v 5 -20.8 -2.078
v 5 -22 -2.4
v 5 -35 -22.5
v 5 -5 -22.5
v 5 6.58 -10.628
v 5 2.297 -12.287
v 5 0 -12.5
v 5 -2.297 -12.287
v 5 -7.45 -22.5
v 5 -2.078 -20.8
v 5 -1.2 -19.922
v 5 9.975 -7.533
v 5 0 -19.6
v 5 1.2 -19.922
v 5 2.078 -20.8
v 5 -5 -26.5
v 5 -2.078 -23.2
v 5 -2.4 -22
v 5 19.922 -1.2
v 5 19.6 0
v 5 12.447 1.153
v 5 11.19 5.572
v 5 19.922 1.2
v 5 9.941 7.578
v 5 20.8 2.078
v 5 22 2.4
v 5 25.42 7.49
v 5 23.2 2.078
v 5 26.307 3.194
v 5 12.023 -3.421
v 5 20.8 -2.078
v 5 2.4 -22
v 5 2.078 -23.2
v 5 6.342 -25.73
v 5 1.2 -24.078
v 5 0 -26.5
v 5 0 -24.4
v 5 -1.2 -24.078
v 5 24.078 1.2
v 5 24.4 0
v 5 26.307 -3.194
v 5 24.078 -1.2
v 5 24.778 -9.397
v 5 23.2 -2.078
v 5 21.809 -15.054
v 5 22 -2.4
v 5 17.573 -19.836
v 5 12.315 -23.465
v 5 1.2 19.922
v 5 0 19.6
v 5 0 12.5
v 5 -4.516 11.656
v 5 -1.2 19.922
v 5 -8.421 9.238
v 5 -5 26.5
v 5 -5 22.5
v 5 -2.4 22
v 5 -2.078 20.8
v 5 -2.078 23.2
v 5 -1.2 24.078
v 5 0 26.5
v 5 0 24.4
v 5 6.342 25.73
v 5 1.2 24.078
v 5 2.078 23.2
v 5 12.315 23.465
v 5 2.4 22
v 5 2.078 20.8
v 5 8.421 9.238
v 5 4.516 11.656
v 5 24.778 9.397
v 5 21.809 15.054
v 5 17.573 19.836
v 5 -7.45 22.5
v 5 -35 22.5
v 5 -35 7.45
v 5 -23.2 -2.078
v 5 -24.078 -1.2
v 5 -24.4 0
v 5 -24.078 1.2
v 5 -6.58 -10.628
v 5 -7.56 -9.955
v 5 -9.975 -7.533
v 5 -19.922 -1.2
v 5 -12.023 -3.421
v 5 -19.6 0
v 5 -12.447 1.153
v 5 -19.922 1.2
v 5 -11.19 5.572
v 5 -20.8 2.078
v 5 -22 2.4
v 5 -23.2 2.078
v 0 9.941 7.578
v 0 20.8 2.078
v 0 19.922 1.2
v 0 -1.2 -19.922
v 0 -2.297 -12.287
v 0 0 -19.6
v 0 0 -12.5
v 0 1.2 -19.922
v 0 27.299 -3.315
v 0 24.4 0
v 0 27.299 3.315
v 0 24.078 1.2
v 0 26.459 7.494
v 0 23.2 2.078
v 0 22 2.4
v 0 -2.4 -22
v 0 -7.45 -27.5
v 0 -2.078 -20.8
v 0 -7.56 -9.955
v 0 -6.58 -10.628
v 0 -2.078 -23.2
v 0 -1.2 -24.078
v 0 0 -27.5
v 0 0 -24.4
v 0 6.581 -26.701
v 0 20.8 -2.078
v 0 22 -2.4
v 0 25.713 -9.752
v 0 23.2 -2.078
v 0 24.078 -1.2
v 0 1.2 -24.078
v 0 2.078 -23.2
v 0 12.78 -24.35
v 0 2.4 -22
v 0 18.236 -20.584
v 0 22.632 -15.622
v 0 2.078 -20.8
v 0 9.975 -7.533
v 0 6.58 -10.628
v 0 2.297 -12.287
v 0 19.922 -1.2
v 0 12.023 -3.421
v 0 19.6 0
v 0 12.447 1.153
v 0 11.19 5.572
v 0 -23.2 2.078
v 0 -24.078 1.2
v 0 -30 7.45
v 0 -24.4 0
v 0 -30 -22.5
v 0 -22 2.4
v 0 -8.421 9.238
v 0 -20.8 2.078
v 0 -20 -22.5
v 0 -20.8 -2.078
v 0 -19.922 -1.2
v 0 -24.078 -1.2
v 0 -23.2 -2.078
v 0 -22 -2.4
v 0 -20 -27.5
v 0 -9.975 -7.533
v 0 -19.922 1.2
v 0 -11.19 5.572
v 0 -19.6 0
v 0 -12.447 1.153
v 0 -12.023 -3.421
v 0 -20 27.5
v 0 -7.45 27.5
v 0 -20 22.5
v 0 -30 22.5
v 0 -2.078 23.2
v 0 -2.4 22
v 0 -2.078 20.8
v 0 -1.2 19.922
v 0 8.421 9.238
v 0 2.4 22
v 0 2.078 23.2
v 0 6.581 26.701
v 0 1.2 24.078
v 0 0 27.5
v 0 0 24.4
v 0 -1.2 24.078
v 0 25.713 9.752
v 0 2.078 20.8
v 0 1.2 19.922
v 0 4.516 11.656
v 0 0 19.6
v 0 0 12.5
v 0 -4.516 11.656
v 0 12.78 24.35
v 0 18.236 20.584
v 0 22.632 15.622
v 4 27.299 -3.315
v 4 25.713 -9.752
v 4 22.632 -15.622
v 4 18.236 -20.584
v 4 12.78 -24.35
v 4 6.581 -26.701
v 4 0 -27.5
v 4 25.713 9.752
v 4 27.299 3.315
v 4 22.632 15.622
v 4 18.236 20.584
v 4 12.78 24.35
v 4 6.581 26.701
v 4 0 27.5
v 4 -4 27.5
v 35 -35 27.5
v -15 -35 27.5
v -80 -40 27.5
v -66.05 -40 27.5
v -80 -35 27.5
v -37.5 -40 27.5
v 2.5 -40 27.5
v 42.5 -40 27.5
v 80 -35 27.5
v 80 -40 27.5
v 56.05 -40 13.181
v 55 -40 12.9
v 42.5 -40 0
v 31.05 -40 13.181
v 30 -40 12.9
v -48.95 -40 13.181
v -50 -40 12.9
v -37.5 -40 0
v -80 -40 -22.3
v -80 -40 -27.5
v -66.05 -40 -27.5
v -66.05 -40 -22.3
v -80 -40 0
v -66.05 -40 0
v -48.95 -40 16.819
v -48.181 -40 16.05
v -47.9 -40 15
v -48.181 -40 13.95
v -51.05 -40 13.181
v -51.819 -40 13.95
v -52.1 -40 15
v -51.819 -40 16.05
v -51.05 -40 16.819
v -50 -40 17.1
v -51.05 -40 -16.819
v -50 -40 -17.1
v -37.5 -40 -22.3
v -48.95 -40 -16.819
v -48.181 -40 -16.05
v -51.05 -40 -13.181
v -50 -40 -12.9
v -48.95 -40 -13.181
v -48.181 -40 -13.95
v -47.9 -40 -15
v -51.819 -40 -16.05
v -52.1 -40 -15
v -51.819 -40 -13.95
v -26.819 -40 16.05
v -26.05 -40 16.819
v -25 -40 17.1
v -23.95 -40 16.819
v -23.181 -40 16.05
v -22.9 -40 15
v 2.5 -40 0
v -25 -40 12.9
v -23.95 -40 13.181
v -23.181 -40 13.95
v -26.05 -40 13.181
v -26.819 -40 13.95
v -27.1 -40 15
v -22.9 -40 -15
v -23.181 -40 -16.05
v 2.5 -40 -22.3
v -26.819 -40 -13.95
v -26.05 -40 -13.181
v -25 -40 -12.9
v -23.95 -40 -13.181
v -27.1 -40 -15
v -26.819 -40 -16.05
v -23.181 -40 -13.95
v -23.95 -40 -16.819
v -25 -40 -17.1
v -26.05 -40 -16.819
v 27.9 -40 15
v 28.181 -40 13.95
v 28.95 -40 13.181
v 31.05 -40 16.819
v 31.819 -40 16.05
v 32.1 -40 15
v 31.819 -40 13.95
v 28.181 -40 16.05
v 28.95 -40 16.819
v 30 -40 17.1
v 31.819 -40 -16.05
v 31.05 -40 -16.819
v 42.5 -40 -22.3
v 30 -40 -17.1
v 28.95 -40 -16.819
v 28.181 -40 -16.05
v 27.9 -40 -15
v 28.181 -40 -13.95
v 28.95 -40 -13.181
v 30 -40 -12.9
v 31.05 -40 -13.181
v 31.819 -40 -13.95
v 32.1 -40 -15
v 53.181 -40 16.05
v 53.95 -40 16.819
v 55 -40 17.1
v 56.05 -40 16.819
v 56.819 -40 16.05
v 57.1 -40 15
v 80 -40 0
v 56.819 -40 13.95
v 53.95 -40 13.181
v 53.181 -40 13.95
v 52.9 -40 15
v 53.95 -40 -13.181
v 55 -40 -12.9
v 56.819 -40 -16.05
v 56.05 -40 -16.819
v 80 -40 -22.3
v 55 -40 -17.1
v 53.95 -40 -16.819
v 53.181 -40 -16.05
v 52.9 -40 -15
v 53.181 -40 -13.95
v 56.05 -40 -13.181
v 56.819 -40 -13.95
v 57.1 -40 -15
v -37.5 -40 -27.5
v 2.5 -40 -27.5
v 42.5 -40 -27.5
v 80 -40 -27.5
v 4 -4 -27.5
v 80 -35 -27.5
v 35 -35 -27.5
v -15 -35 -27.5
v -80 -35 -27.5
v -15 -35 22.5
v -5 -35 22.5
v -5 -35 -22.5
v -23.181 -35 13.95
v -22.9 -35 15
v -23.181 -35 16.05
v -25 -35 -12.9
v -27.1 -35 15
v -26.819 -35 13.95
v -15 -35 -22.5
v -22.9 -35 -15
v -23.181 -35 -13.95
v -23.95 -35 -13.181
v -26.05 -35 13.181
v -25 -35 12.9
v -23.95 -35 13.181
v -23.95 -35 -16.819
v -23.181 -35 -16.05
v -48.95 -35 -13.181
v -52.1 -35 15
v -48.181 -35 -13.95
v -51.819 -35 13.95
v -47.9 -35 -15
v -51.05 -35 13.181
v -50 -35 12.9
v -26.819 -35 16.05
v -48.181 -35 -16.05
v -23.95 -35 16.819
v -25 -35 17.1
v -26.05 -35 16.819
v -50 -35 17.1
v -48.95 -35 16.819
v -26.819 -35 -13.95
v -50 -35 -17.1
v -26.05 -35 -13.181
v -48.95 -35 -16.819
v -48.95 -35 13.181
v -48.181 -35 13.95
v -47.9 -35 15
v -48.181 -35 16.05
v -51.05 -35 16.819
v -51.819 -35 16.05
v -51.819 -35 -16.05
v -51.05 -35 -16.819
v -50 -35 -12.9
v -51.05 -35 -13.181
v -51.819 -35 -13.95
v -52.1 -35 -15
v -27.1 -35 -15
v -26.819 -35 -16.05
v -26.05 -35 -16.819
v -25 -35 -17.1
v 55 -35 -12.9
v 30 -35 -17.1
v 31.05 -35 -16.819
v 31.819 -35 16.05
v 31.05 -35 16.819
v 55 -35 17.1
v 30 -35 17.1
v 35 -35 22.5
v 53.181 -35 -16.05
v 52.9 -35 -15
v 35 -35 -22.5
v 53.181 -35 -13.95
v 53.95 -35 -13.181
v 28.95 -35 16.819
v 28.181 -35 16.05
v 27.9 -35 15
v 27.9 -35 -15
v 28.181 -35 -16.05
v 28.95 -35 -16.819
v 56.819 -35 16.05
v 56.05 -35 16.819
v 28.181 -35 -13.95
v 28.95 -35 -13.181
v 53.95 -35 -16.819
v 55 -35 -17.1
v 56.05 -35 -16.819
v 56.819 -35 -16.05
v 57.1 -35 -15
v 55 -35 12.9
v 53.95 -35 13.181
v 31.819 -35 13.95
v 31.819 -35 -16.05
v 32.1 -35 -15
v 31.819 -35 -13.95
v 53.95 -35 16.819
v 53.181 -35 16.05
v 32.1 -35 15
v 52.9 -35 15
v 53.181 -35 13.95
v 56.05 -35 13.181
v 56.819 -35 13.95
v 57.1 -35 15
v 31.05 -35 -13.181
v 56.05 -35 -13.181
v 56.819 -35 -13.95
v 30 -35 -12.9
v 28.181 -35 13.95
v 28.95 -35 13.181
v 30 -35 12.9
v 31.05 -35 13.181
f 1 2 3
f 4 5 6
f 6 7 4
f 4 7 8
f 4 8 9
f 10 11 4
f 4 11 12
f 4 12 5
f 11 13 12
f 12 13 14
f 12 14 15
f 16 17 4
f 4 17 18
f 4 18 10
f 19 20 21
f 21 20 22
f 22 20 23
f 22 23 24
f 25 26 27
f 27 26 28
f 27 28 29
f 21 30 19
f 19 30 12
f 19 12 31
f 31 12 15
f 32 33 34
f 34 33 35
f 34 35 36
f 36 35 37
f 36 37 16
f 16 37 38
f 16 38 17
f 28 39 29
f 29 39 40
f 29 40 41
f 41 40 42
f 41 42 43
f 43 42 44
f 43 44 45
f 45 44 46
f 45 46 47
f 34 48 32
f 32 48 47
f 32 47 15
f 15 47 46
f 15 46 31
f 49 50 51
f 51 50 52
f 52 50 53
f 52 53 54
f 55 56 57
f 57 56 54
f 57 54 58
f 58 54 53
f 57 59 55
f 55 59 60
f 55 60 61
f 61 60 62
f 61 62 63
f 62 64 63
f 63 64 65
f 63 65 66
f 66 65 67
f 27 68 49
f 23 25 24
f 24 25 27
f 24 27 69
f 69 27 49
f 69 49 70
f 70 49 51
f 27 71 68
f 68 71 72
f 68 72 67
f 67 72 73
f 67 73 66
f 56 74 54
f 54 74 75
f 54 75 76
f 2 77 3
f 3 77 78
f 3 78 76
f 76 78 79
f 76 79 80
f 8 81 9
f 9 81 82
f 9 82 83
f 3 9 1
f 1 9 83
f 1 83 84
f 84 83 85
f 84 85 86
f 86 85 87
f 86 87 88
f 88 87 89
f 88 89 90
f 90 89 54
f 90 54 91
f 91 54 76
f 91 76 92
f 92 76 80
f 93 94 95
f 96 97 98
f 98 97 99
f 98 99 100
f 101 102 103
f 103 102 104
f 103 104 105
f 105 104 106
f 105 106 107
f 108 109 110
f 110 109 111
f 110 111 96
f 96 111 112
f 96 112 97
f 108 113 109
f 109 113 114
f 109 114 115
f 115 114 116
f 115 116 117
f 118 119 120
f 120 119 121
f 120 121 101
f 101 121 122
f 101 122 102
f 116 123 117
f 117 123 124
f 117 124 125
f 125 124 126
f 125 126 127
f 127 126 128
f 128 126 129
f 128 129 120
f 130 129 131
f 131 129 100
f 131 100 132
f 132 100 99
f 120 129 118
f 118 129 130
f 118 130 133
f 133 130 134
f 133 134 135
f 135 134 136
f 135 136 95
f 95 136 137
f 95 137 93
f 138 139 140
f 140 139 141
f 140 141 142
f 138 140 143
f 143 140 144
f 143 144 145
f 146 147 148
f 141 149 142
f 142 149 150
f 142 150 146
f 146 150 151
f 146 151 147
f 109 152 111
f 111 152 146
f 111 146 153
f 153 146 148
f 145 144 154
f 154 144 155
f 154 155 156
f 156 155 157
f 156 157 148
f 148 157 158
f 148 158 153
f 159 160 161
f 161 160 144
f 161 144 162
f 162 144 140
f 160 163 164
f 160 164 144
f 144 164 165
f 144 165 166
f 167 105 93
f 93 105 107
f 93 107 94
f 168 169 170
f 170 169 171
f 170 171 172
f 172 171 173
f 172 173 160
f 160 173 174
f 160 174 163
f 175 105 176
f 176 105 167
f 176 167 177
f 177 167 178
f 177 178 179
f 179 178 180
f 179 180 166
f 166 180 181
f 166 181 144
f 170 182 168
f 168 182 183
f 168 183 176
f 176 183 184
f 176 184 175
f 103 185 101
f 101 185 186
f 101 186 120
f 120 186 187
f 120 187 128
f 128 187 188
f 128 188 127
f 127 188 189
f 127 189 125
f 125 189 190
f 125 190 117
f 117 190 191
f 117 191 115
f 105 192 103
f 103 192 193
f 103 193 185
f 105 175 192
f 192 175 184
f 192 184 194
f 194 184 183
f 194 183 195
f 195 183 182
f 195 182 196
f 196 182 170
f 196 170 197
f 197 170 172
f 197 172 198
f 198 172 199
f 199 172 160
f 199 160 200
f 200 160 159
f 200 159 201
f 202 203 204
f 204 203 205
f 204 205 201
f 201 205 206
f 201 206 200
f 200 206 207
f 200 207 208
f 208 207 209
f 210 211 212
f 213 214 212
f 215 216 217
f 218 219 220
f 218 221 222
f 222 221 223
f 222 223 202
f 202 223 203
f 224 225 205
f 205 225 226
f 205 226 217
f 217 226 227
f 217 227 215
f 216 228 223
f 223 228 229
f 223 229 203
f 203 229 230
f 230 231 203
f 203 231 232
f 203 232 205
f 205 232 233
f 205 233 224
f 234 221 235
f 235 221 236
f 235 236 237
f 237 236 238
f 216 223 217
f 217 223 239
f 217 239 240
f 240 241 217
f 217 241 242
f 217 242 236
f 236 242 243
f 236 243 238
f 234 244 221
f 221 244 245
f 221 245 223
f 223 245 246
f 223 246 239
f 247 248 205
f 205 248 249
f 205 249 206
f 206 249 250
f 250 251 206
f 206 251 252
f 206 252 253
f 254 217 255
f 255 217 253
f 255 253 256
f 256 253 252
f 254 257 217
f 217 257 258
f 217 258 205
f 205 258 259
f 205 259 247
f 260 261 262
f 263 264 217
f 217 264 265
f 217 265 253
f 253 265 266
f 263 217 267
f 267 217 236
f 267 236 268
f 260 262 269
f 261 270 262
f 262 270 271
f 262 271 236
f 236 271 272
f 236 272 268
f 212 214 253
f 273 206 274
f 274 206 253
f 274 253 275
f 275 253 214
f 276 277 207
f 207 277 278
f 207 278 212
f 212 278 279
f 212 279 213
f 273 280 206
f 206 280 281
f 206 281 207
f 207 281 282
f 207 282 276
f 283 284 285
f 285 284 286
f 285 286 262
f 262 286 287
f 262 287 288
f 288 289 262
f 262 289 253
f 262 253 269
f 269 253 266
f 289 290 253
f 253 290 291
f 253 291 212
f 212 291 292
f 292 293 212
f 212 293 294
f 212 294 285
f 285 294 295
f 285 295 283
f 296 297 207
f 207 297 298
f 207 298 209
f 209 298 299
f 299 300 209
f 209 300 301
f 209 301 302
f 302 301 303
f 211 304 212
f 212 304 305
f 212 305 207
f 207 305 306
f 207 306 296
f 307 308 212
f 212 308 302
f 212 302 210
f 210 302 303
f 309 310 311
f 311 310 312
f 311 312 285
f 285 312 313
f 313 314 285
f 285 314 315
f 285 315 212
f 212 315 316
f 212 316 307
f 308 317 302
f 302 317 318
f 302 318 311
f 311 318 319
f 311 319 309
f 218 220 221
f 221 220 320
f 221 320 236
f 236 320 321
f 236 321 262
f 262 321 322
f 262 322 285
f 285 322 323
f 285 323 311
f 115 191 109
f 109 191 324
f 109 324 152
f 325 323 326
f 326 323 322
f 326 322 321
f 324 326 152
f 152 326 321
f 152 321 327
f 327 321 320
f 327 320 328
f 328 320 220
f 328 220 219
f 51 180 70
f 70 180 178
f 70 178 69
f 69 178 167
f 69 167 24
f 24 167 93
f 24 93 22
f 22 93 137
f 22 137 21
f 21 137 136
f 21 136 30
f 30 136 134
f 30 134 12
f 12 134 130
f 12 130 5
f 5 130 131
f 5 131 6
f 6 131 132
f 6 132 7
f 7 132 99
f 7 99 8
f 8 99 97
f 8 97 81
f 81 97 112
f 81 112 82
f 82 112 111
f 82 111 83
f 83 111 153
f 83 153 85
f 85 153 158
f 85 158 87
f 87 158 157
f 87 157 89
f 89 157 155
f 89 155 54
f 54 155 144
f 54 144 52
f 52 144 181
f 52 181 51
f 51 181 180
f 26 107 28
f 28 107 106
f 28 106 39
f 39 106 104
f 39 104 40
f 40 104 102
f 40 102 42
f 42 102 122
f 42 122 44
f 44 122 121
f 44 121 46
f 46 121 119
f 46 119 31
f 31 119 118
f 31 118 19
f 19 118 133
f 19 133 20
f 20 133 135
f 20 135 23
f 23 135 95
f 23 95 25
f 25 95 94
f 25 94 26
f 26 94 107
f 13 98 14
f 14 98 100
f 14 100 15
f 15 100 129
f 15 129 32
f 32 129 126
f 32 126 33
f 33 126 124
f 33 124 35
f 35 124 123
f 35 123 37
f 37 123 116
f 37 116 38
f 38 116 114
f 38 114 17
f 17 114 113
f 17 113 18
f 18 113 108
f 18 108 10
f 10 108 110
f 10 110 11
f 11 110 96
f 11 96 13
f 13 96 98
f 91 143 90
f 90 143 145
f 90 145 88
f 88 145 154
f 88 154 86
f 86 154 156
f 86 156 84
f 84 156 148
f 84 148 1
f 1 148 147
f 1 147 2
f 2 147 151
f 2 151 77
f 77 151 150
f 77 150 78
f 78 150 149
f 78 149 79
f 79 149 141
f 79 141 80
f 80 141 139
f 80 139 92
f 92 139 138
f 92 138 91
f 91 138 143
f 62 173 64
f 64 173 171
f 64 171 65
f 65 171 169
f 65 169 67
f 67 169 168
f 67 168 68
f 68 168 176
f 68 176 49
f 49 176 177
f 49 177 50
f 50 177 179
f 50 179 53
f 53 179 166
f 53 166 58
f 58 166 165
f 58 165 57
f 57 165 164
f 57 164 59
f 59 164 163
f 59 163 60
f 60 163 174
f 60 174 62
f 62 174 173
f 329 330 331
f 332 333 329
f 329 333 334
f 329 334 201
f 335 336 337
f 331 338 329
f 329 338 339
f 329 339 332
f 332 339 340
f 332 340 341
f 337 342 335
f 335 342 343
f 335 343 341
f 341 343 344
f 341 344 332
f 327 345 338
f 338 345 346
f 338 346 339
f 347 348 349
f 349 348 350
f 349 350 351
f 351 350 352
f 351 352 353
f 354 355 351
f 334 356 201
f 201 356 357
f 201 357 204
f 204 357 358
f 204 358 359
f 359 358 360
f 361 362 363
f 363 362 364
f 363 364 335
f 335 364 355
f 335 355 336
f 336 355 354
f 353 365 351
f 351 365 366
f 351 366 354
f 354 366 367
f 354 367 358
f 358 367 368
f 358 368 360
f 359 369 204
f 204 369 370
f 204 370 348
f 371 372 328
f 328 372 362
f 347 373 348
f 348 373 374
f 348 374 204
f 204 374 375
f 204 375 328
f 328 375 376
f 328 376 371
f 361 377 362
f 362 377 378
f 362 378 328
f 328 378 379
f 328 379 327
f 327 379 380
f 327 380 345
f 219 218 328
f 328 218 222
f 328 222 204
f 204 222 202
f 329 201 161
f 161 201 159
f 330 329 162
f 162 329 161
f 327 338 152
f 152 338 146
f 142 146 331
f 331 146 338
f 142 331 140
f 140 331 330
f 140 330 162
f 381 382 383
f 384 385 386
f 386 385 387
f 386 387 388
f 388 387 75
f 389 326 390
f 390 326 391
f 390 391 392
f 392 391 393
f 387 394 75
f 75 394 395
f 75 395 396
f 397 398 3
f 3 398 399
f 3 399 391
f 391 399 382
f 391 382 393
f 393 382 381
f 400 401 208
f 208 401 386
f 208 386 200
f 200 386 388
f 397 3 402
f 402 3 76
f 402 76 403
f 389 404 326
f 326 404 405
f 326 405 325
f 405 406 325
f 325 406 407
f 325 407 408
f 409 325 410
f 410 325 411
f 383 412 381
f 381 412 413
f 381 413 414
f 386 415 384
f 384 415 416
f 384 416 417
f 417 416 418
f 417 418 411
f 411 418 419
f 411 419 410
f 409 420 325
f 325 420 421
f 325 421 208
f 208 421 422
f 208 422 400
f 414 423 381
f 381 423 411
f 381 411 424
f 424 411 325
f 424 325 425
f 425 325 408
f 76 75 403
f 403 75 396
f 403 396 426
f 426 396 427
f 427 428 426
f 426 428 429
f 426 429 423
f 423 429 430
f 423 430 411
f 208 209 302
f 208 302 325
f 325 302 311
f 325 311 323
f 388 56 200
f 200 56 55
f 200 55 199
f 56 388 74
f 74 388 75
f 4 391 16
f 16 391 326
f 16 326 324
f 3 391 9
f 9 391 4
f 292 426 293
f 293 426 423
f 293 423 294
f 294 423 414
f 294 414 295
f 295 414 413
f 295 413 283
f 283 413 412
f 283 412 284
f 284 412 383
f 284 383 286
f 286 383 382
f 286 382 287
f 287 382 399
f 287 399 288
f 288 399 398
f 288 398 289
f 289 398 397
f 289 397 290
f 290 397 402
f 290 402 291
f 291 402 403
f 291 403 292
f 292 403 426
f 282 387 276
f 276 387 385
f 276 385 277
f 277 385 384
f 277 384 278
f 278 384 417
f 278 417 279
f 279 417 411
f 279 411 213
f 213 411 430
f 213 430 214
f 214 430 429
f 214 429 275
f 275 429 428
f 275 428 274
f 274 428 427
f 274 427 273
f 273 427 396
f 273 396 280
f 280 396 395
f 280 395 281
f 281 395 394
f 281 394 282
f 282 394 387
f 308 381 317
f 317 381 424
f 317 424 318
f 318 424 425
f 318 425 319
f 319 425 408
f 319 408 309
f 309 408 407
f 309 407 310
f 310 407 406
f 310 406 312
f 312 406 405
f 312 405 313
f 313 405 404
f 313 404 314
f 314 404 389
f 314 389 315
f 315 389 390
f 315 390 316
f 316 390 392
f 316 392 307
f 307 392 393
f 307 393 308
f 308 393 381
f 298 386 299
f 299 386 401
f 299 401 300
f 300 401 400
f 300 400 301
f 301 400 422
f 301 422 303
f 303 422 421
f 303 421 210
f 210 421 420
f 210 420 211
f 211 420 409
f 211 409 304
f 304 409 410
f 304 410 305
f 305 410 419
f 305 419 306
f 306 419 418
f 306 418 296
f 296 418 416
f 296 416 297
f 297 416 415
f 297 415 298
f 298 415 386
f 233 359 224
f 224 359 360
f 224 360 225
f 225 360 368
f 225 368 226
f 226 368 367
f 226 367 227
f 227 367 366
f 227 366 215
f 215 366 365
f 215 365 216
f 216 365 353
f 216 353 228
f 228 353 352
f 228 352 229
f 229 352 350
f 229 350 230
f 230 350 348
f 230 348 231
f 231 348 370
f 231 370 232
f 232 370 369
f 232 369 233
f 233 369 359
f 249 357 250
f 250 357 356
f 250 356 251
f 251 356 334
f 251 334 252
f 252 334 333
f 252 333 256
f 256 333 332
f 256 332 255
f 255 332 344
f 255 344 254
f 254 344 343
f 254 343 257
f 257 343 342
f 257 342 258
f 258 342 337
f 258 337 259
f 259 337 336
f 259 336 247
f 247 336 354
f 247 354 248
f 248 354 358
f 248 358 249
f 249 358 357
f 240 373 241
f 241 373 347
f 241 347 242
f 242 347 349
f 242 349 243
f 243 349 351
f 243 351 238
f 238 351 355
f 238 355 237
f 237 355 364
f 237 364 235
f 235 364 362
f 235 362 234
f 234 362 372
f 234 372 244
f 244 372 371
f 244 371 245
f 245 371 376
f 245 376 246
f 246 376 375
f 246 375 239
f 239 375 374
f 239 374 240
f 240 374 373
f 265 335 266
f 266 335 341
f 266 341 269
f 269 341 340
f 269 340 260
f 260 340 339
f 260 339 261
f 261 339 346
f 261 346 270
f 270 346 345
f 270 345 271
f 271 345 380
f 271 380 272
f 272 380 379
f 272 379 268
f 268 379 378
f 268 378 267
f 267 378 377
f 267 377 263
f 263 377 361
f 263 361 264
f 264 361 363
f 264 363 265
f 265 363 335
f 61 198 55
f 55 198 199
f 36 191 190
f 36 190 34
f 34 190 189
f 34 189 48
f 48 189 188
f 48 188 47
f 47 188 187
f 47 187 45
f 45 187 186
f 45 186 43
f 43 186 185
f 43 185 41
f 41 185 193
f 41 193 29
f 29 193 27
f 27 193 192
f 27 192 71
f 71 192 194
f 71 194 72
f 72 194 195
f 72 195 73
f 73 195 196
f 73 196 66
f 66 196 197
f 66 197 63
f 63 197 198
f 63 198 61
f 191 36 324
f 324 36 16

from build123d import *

# Parameters (mm, degrees)
SKETCH_1_R          = 12.5
SKETCH_1_R_2        = 2.4
EXTRUDE_1_DEPTH     = 5
SKETCH_2_W          = 55
SKETCH_2_H          = 5
EXTRUDE_2_DEPTH     = 80
RIB_1_REACH         = 105.712
SKETCH_3_WALL_W     = 230.637888562
SKETCH_3_WALL_H     = 5
CHAMFER_2_SIZE      = 5
SKETCH_4_W          = 55
SKETCH_4_H          = 5
EXTRUDE_3_DEPTH     = 75
RIB_6_REACH         = 105.712
SKETCH_5_WALL_W     = 251.851091998
SKETCH_5_WALL_H     = 5
CUT_EXTRUDE_1_REACH = 107.178
SKETCH_6_R          = 2.1
CHAMFER_3_SIZE      = 1


with BuildPart() as part:
    # 草图1 → 凸台-拉伸1 (new body)
    with BuildSketch(Plane(origin=(0, 0, 0), x_dir=(0, 0, -1), z_dir=(1, 0, 0))):
        with BuildLine():
            Line((-27.5, 0), (-27.5, -40))
            Line((-27.5, -40), (27.5, -40))
            Line((27.5, -40), (27.5, 0))
            ThreePointArc((27.5, 0), (0, 27.5), (-27.5, 0))
        make_face()
        Circle(SKETCH_1_R, mode=Mode.SUBTRACT)
        with Locations((0, 22)):
            Circle(SKETCH_1_R_2, mode=Mode.SUBTRACT)
        with Locations((22, 0)):
            Circle(SKETCH_1_R_2, mode=Mode.SUBTRACT)
        with Locations((0, -22)):
            Circle(SKETCH_1_R_2, mode=Mode.SUBTRACT)
        with Locations((-22, 0)):
            Circle(SKETCH_1_R_2, mode=Mode.SUBTRACT)
    extrude(amount=EXTRUDE_1_DEPTH)

    # 草图2 → 凸台-拉伸2 (add)
    with BuildSketch(Plane.ZY):
        with Locations((0, -37.5)):
            Rectangle(SKETCH_2_W, SKETCH_2_H)
    extrude(amount=EXTRUDE_2_DEPTH)

    # 草图3 wall → 筋1 (add, up to next)
    with BuildSketch(Plane(origin=(-7.5, -27.5, 25), x_dir=(0.707106781187, 0.707106781187, 0), z_dir=(-0.707106781187, 0.707106781187, 0)), mode=Mode.PRIVATE) as rib_1_sk1:
        Rectangle(SKETCH_3_WALL_W, SKETCH_3_WALL_H)
    rib_1_tool1 = extrude(rib_1_sk1.sketch, amount=-RIB_1_REACH, mode=Mode.PRIVATE) - part.part
    rib_1 = rib_1_tool1.solids().sort_by_distance((-7.5, -27.5, 25))[0]
    add(rib_1)

    # 镜向1: 筋1 across plane
    add(rib_1.mirror(Plane.XY))

    # 倒角2
    chamfer_2_edges = [part.edges().sort_by_distance(p)[0] for p in [
        (0, -35, 0),
    ]]
    chamfer(chamfer_2_edges, length=CHAMFER_2_SIZE)

    # 草图4 → 凸台-拉伸3 (add)
    with BuildSketch(Plane(origin=(5, 0, 0), x_dir=(0, 0, -1), z_dir=(1, 0, 0))):
        with Locations((0, -37.5)):
            Rectangle(SKETCH_4_W, SKETCH_4_H)
    extrude(amount=EXTRUDE_3_DEPTH)

    # 草图5 wall → 筋6 (add, up to next)
    with BuildSketch(Plane(origin=(20, -20, 25), x_dir=(-0.707106781187, 0.707106781187, 0), z_dir=(-0.707106781187, -0.707106781187, 0)), mode=Mode.PRIVATE) as rib_6_sk1:
        Rectangle(SKETCH_5_WALL_W, SKETCH_5_WALL_H)
    rib_6_tool1 = extrude(rib_6_sk1.sketch, amount=RIB_6_REACH, mode=Mode.PRIVATE) - part.part
    rib_6 = rib_6_tool1.solids().sort_by_distance((20, -20, 25))[0]
    add(rib_6)

    # 镜向2: 筋6 across plane
    add(rib_6.mirror(Plane.XY))

    # 草图6 → 切除-拉伸1 (cut, up to next)
    with BuildSketch(Plane(origin=(0, -35, 0), x_dir=(1, 0, 0), z_dir=(0, 1, 0)), mode=Mode.PRIVATE) as cut_extrude_1_sk1:
        with Locations(Location((30, 15, 0), (0, 0, 270))):
            Circle(SKETCH_6_R)
    cut_extrude_1_tool1 = extrude(cut_extrude_1_sk1.sketch, amount=-CUT_EXTRUDE_1_REACH, mode=Mode.PRIVATE) & part.part
    # 草图6 → 切除-拉伸1 (cut, up to next)
    with BuildSketch(Plane(origin=(0, -35, 0), x_dir=(1, 0, 0), z_dir=(0, 1, 0)), mode=Mode.PRIVATE) as cut_extrude_1_sk2:
        with Locations(Location((55, 15, 0), (0, 0, 270))):
            Circle(SKETCH_6_R)
    cut_extrude_1_tool2 = extrude(cut_extrude_1_sk2.sketch, amount=-CUT_EXTRUDE_1_REACH, mode=Mode.PRIVATE) & part.part
    # 草图6 → 切除-拉伸1 (cut, up to next)
    with BuildSketch(Plane(origin=(0, -35, 0), x_dir=(1, 0, 0), z_dir=(0, 1, 0)), mode=Mode.PRIVATE) as cut_extrude_1_sk3:
        with Locations(Location((-50, 15, 0), (0, 0, 270))):
            Circle(SKETCH_6_R)
    cut_extrude_1_tool3 = extrude(cut_extrude_1_sk3.sketch, amount=-CUT_EXTRUDE_1_REACH, mode=Mode.PRIVATE) & part.part
    # 草图6 → 切除-拉伸1 (cut, up to next)
    with BuildSketch(Plane(origin=(0, -35, 0), x_dir=(1, 0, 0), z_dir=(0, 1, 0)), mode=Mode.PRIVATE) as cut_extrude_1_sk4:
        with Locations(Location((-25, 15, 0), (0, 0, 270))):
            Circle(SKETCH_6_R)
    cut_extrude_1_tool4 = extrude(cut_extrude_1_sk4.sketch, amount=-CUT_EXTRUDE_1_REACH, mode=Mode.PRIVATE) & part.part
    # 草图6 → 切除-拉伸1 (cut, up to next)
    with BuildSketch(Plane(origin=(0, -35, 0), x_dir=(1, 0, 0), z_dir=(0, 1, 0)), mode=Mode.PRIVATE) as cut_extrude_1_sk5:
        with Locations(Location((55, -15, 0), (0, 0, 270))):
            Circle(SKETCH_6_R)
    cut_extrude_1_tool5 = extrude(cut_extrude_1_sk5.sketch, amount=-CUT_EXTRUDE_1_REACH, mode=Mode.PRIVATE) & part.part
    # 草图6 → 切除-拉伸1 (cut, up to next)
    with BuildSketch(Plane(origin=(0, -35, 0), x_dir=(1, 0, 0), z_dir=(0, 1, 0)), mode=Mode.PRIVATE) as cut_extrude_1_sk6:
        with Locations(Location((30, -15, 0), (0, 0, 270))):
            Circle(SKETCH_6_R)
    cut_extrude_1_tool6 = extrude(cut_extrude_1_sk6.sketch, amount=-CUT_EXTRUDE_1_REACH, mode=Mode.PRIVATE) & part.part
    # 草图6 → 切除-拉伸1 (cut, up to next)
    with BuildSketch(Plane(origin=(0, -35, 0), x_dir=(1, 0, 0), z_dir=(0, 1, 0)), mode=Mode.PRIVATE) as cut_extrude_1_sk7:
        with Locations(Location((-25, -15, 0), (0, 0, 270))):
            Circle(SKETCH_6_R)
    cut_extrude_1_tool7 = extrude(cut_extrude_1_sk7.sketch, amount=-CUT_EXTRUDE_1_REACH, mode=Mode.PRIVATE) & part.part
    # 草图6 → 切除-拉伸1 (cut, up to next)
    with BuildSketch(Plane(origin=(0, -35, 0), x_dir=(1, 0, 0), z_dir=(0, 1, 0)), mode=Mode.PRIVATE) as cut_extrude_1_sk8:
        with Locations(Location((-50, -15, 0), (0, 0, 270))):
            Circle(SKETCH_6_R)
    cut_extrude_1_tool8 = extrude(cut_extrude_1_sk8.sketch, amount=-CUT_EXTRUDE_1_REACH, mode=Mode.PRIVATE) & part.part
    add(cut_extrude_1_tool1.solids().sort_by_distance((30, -35, -15))[0], mode=Mode.SUBTRACT)
    add(cut_extrude_1_tool2.solids().sort_by_distance((55, -35, -15))[0], mode=Mode.SUBTRACT)
    add(cut_extrude_1_tool3.solids().sort_by_distance((-50, -35, -15))[0], mode=Mode.SUBTRACT)
    add(cut_extrude_1_tool4.solids().sort_by_distance((-25, -35, -15))[0], mode=Mode.SUBTRACT)
    add(cut_extrude_1_tool5.solids().sort_by_distance((55, -35, 15))[0], mode=Mode.SUBTRACT)
    add(cut_extrude_1_tool6.solids().sort_by_distance((30, -35, 15))[0], mode=Mode.SUBTRACT)
    add(cut_extrude_1_tool7.solids().sort_by_distance((-25, -35, 15))[0], mode=Mode.SUBTRACT)
    add(cut_extrude_1_tool8.solids().sort_by_distance((-50, -35, 15))[0], mode=Mode.SUBTRACT)

    # 倒角3
    chamfer_3_edges = [part.edges().sort_by_distance(p)[0] for p in [
        (5, -2.5, -27.5),
        (5, 27.5, 0),
        (5, -2.5, 27.5),
    ]]
    chamfer(chamfer_3_edges, length=CHAMFER_3_SIZE)


solid = part.part
